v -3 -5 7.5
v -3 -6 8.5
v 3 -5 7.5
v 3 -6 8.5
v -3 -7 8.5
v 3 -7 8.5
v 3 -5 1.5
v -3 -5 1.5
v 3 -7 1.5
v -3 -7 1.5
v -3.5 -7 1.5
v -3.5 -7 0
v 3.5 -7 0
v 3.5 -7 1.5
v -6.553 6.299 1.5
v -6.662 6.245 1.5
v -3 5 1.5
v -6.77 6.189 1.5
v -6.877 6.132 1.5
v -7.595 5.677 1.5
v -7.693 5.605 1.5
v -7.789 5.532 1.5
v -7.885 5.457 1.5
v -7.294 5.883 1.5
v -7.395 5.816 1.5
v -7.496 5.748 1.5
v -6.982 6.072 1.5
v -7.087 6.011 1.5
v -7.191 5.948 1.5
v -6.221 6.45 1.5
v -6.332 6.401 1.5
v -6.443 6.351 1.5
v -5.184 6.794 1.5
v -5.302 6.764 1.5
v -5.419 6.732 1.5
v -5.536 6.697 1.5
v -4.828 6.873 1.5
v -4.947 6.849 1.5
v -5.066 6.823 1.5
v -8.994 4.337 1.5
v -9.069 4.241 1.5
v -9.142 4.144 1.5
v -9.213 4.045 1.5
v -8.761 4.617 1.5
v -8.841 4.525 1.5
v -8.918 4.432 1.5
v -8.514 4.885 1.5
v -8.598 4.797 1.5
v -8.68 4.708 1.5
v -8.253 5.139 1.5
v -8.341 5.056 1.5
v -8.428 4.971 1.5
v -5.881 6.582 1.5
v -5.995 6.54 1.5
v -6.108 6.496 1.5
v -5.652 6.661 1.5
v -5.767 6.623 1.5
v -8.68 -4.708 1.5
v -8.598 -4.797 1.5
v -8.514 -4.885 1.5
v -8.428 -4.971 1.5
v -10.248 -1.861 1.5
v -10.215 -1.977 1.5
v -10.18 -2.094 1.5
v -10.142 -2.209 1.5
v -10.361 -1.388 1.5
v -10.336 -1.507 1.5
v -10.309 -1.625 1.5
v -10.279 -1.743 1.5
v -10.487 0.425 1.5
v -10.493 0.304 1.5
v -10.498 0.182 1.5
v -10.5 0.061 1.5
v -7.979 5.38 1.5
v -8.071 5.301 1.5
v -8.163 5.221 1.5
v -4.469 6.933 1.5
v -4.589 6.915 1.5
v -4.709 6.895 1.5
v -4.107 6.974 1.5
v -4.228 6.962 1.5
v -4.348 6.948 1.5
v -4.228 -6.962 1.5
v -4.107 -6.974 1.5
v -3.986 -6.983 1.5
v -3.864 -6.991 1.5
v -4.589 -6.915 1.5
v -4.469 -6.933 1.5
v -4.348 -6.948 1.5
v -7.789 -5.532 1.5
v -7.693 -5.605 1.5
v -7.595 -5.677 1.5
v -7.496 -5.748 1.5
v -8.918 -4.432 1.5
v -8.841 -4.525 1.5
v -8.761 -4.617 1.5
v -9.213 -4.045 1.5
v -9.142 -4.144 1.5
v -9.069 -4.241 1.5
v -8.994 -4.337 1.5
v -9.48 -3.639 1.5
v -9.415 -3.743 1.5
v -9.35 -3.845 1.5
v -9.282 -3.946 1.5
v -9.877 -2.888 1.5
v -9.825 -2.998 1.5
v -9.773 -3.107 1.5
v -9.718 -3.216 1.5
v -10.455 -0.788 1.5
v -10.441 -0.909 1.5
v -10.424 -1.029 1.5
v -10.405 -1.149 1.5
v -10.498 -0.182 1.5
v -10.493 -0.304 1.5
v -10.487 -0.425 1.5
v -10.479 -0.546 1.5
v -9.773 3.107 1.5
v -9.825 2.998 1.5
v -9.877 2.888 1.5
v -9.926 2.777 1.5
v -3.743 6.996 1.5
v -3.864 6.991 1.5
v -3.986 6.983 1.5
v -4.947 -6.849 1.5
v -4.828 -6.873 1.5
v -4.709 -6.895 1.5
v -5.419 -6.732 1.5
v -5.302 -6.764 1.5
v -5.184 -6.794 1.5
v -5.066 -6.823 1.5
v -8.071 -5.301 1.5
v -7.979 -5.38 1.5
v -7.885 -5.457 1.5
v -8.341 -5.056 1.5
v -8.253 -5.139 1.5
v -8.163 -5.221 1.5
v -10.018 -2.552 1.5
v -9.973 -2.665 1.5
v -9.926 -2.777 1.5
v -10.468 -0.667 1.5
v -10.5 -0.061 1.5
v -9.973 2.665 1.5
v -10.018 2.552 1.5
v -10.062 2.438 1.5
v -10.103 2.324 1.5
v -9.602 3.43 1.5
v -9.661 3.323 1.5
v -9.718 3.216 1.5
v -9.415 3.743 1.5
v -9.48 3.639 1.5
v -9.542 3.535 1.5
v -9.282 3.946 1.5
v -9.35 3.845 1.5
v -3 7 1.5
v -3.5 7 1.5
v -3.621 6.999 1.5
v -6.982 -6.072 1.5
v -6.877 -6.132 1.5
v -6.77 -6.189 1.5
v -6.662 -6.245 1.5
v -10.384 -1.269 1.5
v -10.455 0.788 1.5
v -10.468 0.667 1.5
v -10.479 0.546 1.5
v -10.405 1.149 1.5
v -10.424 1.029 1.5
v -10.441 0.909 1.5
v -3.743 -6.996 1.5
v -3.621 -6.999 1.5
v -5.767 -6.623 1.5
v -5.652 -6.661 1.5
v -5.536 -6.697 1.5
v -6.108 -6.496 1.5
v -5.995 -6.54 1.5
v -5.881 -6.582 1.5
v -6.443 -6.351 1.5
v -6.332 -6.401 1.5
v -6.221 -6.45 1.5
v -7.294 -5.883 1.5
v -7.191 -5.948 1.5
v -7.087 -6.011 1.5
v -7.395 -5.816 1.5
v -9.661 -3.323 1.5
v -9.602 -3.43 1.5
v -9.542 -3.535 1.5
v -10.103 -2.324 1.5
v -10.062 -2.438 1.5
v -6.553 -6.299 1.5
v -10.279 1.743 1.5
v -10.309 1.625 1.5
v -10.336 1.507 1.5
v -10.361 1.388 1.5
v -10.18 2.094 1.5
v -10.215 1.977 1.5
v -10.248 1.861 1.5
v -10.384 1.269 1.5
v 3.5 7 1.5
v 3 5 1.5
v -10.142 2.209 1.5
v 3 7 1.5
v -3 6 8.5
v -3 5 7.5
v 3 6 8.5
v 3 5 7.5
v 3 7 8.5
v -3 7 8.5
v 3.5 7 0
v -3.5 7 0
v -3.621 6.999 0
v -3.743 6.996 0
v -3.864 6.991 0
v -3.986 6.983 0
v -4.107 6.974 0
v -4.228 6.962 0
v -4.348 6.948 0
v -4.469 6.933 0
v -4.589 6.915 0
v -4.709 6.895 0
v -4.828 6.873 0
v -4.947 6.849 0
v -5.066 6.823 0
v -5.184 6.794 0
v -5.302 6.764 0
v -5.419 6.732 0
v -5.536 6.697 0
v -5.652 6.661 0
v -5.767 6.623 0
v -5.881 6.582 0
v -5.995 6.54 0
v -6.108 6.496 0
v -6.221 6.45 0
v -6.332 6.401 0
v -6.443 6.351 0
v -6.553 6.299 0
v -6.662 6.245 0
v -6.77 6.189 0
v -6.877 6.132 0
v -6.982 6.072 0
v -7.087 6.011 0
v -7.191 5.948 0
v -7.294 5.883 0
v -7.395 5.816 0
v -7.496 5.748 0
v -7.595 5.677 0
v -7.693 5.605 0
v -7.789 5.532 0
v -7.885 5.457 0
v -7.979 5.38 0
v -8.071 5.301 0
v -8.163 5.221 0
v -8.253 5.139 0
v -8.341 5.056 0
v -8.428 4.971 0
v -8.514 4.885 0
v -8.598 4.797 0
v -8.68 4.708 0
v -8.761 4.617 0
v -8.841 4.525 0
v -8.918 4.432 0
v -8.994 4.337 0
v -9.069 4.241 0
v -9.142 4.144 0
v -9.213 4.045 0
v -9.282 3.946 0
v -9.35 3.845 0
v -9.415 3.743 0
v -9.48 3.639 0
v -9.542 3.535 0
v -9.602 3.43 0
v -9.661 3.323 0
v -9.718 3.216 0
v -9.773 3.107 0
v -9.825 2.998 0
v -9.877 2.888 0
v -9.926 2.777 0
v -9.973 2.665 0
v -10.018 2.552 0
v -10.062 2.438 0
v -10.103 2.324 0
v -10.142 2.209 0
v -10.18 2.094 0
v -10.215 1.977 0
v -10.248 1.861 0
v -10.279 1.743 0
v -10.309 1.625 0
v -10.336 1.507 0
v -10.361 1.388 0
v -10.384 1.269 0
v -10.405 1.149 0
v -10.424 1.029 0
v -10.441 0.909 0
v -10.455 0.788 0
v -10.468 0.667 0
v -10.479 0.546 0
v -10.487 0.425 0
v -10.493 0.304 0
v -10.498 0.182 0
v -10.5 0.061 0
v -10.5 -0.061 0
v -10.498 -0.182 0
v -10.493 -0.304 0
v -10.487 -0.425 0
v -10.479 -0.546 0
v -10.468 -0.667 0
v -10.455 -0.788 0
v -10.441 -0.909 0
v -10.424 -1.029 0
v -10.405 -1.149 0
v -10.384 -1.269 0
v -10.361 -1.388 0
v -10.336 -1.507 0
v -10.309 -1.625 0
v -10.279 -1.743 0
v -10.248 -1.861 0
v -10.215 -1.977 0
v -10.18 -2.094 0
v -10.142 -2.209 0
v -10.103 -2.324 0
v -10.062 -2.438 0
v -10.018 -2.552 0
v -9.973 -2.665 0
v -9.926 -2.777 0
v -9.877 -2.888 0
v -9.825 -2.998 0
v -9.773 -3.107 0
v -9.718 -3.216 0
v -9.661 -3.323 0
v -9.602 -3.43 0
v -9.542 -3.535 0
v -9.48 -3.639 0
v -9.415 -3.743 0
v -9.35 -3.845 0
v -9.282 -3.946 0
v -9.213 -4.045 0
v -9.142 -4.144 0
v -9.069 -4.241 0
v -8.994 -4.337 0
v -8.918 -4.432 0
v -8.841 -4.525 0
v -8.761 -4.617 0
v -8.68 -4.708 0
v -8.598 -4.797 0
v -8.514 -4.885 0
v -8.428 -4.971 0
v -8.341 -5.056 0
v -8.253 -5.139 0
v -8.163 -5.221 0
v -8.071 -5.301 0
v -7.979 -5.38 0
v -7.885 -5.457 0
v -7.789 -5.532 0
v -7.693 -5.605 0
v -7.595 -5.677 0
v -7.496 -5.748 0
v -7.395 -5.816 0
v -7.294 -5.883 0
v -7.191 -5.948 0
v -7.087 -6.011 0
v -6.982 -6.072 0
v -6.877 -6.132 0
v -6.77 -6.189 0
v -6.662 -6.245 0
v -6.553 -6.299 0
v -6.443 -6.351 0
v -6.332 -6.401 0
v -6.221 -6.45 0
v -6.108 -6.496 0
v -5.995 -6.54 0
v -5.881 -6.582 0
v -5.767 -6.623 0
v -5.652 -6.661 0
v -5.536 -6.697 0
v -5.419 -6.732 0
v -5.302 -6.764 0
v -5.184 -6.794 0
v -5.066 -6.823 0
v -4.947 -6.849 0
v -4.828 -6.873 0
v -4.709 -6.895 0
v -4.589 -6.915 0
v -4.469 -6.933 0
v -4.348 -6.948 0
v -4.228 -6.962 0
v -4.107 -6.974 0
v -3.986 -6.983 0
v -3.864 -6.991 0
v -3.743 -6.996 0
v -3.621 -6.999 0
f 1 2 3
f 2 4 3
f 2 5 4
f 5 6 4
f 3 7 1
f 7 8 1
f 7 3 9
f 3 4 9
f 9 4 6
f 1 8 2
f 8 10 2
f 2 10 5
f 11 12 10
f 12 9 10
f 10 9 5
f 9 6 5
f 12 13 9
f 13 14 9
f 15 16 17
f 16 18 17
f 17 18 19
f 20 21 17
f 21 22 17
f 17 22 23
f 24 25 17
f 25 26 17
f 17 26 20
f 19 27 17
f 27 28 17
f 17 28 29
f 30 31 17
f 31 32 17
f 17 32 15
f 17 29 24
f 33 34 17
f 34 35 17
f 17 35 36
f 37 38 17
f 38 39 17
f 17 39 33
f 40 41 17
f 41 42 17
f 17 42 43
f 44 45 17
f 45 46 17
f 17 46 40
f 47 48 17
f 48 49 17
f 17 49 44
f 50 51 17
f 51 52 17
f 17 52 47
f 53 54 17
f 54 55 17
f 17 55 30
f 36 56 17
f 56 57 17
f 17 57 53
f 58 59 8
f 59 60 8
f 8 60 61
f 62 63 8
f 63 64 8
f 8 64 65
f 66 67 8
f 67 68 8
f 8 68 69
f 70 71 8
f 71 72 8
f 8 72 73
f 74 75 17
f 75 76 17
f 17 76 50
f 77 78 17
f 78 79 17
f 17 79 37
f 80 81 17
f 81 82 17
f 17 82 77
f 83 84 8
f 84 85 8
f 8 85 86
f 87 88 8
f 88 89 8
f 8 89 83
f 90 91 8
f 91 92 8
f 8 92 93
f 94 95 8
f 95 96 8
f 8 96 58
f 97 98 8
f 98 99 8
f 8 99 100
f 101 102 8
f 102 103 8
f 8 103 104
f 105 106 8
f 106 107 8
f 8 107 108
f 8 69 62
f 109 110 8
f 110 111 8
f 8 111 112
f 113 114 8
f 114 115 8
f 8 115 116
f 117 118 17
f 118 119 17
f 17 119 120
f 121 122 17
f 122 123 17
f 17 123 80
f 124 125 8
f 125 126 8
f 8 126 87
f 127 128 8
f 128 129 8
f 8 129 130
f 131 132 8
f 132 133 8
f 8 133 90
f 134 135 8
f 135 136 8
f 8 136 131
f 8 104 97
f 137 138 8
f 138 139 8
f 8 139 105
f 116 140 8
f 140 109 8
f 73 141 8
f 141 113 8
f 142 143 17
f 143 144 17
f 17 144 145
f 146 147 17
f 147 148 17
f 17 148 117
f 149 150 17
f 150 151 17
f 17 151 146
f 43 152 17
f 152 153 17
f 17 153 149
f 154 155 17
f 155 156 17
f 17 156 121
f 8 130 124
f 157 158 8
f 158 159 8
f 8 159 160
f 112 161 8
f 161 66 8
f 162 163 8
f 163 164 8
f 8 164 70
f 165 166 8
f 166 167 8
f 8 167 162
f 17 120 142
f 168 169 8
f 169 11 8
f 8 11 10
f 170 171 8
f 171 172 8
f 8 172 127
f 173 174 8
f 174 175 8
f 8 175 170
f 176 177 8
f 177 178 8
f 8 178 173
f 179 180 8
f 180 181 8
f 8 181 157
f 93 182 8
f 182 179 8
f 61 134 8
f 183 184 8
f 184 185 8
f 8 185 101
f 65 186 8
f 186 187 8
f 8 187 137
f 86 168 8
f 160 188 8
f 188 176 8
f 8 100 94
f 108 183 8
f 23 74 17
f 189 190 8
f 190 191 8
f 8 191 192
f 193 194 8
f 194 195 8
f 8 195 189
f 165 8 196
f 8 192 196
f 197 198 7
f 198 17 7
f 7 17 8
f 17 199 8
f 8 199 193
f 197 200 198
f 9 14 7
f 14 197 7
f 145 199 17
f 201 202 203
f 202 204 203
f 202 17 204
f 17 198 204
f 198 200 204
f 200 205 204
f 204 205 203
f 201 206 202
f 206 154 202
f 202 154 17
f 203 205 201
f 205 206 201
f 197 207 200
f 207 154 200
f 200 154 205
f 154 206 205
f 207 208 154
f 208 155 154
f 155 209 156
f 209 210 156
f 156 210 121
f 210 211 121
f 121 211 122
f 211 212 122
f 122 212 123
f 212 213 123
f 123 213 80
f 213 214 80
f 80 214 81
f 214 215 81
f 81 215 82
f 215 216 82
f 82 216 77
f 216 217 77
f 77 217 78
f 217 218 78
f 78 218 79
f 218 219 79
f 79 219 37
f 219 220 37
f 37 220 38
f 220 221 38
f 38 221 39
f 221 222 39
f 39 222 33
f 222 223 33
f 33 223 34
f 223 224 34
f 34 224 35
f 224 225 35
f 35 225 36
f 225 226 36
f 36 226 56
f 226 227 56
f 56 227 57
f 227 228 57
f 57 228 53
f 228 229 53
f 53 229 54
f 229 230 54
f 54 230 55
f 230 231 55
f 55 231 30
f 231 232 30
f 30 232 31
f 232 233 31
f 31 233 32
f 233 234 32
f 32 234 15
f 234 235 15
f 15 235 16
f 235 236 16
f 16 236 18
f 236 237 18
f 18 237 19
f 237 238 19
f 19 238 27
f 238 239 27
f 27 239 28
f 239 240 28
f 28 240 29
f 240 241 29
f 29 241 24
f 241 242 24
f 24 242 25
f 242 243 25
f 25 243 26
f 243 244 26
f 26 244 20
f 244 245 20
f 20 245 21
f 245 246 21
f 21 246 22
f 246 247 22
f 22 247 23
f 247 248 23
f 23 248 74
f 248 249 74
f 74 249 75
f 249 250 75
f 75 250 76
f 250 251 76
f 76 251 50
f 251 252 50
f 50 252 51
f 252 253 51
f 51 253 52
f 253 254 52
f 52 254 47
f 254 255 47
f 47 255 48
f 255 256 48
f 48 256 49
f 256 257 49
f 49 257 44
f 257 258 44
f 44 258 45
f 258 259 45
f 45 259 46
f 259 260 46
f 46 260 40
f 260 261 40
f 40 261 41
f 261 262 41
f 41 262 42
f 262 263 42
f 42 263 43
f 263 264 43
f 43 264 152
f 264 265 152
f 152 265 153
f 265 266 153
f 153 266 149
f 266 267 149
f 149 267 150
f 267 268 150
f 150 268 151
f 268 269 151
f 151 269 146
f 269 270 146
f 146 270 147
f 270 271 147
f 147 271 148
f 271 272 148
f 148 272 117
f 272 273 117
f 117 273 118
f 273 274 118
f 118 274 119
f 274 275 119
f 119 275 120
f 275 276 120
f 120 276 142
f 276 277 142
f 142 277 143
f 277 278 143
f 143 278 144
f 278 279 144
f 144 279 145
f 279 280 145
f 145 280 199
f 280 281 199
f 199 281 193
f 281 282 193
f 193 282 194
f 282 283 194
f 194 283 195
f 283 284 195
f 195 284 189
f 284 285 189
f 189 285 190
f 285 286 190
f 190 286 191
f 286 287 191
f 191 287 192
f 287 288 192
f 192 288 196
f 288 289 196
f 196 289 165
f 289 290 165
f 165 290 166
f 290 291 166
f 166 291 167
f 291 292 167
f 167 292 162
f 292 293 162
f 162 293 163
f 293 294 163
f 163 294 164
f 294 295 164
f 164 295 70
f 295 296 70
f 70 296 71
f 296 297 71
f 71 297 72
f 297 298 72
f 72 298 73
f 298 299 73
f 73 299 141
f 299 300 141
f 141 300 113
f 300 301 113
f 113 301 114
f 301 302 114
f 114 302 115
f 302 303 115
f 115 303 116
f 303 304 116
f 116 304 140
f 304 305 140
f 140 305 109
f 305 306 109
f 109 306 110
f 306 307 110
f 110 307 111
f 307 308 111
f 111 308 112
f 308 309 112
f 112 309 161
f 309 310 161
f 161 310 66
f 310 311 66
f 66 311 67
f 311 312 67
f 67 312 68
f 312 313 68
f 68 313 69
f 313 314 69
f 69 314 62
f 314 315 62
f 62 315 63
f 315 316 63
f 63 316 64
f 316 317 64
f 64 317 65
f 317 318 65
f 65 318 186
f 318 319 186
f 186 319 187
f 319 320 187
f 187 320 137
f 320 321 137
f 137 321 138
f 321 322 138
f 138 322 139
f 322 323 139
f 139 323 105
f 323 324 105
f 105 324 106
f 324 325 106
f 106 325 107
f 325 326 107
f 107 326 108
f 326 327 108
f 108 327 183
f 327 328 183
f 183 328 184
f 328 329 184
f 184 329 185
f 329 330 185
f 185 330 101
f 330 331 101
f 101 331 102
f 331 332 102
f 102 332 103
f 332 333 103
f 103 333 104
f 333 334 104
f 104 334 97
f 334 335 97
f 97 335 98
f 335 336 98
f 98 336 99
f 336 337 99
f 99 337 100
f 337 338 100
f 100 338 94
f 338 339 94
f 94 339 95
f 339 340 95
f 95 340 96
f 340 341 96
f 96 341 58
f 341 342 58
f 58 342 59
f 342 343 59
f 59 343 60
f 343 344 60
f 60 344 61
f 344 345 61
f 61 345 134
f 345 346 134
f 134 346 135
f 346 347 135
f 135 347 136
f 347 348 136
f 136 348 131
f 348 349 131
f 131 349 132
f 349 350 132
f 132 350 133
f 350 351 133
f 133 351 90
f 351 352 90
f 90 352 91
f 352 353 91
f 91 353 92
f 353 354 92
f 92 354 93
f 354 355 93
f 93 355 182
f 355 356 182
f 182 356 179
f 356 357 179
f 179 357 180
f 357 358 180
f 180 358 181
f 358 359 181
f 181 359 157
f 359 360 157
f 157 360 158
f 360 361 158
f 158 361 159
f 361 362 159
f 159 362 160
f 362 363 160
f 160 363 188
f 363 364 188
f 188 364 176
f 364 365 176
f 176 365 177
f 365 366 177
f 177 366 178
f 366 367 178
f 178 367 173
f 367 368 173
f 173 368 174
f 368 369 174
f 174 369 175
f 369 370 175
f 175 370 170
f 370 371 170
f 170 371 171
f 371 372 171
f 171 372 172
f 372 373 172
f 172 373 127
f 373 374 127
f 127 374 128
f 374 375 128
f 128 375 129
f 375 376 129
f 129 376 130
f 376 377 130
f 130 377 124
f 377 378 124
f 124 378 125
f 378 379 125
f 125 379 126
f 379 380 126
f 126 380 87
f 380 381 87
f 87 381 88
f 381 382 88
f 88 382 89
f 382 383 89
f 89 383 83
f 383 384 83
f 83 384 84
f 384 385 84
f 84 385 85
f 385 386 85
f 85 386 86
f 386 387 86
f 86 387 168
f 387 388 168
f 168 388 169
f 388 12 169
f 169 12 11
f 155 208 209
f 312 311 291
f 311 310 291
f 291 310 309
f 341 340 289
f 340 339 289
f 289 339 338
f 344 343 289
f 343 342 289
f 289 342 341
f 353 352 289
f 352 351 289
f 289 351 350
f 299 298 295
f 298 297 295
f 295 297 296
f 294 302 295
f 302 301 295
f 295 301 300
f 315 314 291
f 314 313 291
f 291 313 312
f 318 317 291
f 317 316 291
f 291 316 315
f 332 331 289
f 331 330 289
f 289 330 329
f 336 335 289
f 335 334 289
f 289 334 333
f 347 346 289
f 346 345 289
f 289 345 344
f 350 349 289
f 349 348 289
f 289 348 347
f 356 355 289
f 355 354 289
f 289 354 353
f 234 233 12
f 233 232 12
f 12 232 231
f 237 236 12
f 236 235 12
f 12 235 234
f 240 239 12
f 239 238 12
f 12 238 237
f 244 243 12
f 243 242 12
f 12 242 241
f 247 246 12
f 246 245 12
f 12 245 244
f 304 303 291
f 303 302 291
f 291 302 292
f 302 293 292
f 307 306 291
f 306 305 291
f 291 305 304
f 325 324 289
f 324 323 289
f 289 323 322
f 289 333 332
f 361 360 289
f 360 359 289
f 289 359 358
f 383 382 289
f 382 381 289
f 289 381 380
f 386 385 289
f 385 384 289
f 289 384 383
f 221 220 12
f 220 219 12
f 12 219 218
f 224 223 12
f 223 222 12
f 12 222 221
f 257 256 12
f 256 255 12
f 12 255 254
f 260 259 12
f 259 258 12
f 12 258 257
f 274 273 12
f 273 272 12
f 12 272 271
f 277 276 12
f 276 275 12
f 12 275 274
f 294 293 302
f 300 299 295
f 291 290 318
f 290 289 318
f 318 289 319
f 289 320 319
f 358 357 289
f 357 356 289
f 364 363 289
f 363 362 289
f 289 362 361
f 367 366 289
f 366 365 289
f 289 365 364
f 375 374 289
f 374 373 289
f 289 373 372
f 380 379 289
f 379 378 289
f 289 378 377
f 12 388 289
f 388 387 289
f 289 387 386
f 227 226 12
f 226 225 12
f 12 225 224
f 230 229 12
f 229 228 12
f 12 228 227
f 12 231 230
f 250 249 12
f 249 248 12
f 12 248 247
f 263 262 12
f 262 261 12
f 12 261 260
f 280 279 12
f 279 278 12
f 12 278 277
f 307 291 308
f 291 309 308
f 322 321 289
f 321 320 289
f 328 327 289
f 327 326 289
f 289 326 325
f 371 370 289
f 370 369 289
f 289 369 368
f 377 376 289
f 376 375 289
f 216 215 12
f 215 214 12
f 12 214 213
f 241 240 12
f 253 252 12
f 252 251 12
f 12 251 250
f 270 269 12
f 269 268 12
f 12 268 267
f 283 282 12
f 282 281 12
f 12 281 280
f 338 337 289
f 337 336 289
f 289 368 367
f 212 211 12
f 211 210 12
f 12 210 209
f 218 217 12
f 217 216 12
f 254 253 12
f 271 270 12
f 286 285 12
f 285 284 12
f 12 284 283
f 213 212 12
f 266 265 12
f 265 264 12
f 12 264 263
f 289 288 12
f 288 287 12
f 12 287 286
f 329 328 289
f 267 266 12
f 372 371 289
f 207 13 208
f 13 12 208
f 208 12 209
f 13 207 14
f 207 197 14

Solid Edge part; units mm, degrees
sketch "Sketch1" plane through (0, 0, 0) normal (0, 0, 1) x (1, 0, 0)
  line L0 (-3.5, -7) -> (3.5, -7)
  line L1 (3.5, -7) -> (3.5, 7)
  line L2 (3.5, 7) -> (-3.5, 7)
  line L3 (-3.5, 7) -> (-3.5, -7)
  dimension "D1" = 7
  dimension "D2" = 14
extrude "Protrusion1" add sketch "Sketch1" along normal blind 1.5
sketch "Sketch2" plane through (0, 0, 1.5) normal (0, 0, 1) x (1, 0, 0)
  line L0 (-3.5, 7) -> (3.5, 7)
  line L1 (3.5, 7) -> (3.5, 5)
  line L2 (3.5, 5) -> (-3.5, 5)
  line L3 (-3.5, 5) -> (-3.5, 7)
  line L4 (-3.5, -7) -> (3.5, -7)
  line L5 (3.5, -7) -> (3.5, -5)
  line L6 (3.5, -5) -> (-3.5, -5)
  line L7 (-3.5, -5) -> (-3.5, -7)
  dimension "D1" = 2
extrude "Extrusionsausprägung_2" add sketch "Sketch2" along normal blind 7
sketch "Sketch3" plane through (0, 0, 0) normal (0, 0, -1) x (0, -1, 0)
  line L0 (-7, 3.5) -> (7, 3.5)
  arc A0 (-7, 3.5) -> (7, 3.5) centre (0, 3.5) cw
  dimension "D1" = 7
extrude "Extrusionsausprägung_3" add sketch "Sketch3" against normal blind 1.5
sketch "Sketch4" plane through (0, 6, 8.5) normal (0, 0, 1) x (1, 0, 0)
  line L0 (-3.5, 1) -> (-3, 1)
  line L1 (-3, 1) -> (-3, -1)
  line L2 (-3, -1) -> (-3.5, -1)
  line L3 (-3.5, -1) -> (-3.5, 1)
  line L4 (3.5, 1) -> (3, 1)
  line L5 (3, 1) -> (3, -1)
  line L6 (3, -1) -> (3.5, -1)
  line L7 (3.5, -1) -> (3.5, 1)
  line L8 (-3.5, -11) -> (-3, -11)
  line L9 (-3, -11) -> (-3, -13)
  line L10 (-3, -13) -> (-3.5, -13)
  line L11 (-3.5, -13) -> (-3.5, -11)
  line L12 (3.5, -11) -> (3, -11)
  line L13 (3, -11) -> (3, -13)
  line L14 (3, -13) -> (3.5, -13)
  line L15 (3.5, -13) -> (3.5, -11)
  dimension "D1" = 0.5
extrude "Cutout1" cut sketch "Sketch4" against normal up to vertex (7 mm away)
chamfer "Fase_1" distance 1 angle 45 2 edges at (0, 5, 8.5) (0, -5, 8.5)
properties material "Nylon, allgemein"
